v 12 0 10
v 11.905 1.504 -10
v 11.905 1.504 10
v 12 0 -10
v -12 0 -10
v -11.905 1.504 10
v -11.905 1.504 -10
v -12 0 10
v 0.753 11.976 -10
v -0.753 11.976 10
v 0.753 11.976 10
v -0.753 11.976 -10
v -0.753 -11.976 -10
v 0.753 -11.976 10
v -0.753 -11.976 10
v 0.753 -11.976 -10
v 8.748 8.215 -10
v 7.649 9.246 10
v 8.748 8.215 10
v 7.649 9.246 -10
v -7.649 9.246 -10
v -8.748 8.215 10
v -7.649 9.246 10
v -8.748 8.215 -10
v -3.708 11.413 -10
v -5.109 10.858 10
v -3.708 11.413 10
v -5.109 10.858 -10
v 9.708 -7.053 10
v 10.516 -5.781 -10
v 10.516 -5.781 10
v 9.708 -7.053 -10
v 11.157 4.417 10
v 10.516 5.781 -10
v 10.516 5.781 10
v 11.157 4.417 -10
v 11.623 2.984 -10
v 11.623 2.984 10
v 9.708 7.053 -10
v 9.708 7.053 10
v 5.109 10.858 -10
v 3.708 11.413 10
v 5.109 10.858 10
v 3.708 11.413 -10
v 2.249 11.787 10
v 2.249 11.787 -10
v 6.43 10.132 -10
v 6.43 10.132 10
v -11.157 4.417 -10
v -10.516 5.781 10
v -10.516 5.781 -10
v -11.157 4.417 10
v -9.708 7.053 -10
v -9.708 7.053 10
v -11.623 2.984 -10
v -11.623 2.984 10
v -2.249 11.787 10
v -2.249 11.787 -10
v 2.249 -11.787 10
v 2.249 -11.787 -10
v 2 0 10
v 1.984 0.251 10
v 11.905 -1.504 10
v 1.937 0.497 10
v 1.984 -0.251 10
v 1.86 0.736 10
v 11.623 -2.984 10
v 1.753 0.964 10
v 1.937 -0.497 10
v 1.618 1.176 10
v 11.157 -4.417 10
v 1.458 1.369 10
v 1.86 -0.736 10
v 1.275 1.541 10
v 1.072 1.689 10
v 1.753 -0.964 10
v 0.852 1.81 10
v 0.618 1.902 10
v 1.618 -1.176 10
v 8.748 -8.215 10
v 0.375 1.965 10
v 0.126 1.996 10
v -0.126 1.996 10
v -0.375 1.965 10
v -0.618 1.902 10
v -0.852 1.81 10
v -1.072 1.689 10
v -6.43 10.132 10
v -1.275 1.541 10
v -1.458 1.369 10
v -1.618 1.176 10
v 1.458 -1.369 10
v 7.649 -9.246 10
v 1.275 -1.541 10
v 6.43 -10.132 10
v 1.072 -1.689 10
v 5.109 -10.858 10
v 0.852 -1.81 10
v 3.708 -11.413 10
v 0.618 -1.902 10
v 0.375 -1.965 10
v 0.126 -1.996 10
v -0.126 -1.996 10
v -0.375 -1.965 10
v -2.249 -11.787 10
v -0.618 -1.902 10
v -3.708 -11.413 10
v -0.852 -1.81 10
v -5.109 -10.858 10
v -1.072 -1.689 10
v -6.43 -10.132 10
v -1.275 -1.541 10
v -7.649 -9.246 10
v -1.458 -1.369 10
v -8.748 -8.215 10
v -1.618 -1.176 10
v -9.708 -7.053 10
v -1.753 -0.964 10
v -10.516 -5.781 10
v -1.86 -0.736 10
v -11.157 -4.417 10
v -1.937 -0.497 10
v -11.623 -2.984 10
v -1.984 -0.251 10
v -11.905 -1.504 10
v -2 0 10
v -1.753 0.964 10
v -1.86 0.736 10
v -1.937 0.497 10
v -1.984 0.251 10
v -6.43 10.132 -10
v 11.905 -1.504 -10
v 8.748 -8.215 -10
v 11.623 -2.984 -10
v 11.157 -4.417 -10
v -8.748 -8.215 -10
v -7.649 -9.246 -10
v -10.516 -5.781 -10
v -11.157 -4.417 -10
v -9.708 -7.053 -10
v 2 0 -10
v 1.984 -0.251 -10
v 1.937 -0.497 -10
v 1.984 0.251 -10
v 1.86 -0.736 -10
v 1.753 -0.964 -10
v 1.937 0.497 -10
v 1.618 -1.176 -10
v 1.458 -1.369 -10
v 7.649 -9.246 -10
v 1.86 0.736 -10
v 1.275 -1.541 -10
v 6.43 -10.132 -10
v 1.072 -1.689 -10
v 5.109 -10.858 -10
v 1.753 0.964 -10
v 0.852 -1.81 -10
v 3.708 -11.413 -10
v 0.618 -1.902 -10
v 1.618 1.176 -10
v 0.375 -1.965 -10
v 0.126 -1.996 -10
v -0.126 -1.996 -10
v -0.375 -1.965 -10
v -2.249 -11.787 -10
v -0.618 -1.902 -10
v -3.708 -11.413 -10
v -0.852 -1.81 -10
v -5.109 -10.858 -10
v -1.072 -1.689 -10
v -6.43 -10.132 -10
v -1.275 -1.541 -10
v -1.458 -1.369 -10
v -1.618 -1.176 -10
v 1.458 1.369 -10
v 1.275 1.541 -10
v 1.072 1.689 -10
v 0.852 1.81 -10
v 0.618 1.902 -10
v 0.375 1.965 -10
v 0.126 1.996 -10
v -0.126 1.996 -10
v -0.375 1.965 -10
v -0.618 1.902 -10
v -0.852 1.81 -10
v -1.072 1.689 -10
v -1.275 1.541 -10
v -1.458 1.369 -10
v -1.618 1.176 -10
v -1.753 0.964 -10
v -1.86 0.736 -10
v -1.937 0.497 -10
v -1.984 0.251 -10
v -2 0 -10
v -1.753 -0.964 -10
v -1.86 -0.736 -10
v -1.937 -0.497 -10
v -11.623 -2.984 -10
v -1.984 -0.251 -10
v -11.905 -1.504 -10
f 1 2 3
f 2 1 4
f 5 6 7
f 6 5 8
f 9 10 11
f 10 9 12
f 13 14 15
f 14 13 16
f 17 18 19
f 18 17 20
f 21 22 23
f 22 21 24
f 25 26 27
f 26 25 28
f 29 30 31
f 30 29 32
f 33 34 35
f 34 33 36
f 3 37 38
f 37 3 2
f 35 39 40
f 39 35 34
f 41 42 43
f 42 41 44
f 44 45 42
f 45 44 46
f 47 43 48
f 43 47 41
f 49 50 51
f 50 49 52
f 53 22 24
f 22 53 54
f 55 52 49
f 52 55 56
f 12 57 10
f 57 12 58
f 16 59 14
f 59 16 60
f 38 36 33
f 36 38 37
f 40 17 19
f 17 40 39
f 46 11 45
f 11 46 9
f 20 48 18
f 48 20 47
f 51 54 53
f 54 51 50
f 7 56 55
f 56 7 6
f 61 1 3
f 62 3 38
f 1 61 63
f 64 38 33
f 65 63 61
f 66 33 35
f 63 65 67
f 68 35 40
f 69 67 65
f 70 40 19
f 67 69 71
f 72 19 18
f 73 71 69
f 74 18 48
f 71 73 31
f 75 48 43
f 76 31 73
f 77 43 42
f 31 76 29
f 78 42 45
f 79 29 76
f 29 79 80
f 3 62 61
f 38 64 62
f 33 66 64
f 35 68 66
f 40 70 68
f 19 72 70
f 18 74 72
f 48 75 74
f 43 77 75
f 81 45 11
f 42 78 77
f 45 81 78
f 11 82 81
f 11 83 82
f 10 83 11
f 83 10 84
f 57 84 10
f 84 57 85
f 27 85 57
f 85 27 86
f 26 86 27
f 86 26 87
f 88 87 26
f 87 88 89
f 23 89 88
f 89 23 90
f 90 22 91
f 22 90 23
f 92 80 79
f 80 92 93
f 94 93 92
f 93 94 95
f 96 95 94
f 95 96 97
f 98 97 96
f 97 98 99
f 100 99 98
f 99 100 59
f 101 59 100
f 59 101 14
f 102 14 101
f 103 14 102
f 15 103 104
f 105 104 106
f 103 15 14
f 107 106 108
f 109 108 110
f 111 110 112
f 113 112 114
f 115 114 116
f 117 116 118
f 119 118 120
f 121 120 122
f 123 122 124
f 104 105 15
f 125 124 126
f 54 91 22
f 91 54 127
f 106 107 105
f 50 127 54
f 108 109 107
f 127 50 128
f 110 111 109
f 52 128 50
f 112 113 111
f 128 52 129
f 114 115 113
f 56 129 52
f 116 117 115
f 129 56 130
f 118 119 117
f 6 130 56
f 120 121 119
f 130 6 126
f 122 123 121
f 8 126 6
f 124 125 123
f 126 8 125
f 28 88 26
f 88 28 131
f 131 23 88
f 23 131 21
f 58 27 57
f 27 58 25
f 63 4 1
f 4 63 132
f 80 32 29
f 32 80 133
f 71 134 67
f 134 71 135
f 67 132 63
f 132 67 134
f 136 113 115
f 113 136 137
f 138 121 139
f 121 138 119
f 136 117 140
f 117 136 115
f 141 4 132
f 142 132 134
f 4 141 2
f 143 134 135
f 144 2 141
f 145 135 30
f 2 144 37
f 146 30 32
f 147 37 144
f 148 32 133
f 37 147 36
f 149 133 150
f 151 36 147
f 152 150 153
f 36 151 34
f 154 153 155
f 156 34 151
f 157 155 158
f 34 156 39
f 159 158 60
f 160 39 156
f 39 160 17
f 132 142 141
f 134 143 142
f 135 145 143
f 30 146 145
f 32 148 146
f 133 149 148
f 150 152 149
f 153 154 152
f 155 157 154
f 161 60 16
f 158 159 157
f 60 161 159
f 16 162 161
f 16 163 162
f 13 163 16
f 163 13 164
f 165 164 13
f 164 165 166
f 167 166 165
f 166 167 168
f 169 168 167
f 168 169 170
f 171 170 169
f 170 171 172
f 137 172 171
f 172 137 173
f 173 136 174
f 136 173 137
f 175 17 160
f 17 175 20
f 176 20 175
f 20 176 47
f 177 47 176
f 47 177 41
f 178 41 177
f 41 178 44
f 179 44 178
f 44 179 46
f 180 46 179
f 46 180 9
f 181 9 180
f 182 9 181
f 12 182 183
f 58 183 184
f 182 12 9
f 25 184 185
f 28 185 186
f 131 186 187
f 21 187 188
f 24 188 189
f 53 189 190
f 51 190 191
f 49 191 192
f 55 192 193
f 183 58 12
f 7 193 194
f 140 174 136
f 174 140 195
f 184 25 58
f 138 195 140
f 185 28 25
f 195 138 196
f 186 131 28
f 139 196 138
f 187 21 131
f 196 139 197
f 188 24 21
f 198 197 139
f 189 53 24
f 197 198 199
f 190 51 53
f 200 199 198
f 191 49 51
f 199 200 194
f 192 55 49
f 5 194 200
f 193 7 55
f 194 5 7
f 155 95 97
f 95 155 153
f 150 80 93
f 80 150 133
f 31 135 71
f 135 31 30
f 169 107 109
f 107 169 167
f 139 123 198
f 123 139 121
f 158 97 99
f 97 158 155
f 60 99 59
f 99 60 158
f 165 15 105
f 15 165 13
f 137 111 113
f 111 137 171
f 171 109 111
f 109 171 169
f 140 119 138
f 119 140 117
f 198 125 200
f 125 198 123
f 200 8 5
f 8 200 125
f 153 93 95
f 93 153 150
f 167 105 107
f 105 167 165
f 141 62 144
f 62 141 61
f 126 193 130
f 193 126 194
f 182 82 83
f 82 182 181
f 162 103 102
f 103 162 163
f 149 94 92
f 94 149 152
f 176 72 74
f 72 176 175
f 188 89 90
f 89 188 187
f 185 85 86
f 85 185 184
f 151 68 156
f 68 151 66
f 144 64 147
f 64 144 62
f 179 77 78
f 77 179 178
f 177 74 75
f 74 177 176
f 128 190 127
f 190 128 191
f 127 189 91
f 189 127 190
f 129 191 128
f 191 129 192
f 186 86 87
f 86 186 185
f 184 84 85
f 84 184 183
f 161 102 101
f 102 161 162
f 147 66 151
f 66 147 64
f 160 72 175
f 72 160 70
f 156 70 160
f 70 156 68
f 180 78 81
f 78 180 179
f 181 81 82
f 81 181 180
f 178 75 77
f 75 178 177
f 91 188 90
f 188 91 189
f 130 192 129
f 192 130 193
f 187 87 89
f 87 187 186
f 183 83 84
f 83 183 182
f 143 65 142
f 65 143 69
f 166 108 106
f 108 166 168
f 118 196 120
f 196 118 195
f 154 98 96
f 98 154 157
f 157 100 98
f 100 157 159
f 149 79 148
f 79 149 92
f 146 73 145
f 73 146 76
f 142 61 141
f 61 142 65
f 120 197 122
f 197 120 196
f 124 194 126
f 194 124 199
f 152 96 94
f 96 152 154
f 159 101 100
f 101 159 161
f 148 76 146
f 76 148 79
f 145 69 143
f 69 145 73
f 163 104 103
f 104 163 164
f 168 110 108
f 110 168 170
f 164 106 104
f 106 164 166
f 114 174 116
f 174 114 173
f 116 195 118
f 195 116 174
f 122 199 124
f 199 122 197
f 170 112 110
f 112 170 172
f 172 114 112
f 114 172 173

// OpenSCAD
$fn = 50;


difference() {
	union() {
		translate(v = [0, 0, -10.0000000000]) {
			cylinder(h = 20, r = 12.0000000000);
		}
	}
	union() {
		translate(v = [0, 0, -100.0000000000]) {
			cylinder(h = 200, r = 2.0000000000);
		}
	}
}
